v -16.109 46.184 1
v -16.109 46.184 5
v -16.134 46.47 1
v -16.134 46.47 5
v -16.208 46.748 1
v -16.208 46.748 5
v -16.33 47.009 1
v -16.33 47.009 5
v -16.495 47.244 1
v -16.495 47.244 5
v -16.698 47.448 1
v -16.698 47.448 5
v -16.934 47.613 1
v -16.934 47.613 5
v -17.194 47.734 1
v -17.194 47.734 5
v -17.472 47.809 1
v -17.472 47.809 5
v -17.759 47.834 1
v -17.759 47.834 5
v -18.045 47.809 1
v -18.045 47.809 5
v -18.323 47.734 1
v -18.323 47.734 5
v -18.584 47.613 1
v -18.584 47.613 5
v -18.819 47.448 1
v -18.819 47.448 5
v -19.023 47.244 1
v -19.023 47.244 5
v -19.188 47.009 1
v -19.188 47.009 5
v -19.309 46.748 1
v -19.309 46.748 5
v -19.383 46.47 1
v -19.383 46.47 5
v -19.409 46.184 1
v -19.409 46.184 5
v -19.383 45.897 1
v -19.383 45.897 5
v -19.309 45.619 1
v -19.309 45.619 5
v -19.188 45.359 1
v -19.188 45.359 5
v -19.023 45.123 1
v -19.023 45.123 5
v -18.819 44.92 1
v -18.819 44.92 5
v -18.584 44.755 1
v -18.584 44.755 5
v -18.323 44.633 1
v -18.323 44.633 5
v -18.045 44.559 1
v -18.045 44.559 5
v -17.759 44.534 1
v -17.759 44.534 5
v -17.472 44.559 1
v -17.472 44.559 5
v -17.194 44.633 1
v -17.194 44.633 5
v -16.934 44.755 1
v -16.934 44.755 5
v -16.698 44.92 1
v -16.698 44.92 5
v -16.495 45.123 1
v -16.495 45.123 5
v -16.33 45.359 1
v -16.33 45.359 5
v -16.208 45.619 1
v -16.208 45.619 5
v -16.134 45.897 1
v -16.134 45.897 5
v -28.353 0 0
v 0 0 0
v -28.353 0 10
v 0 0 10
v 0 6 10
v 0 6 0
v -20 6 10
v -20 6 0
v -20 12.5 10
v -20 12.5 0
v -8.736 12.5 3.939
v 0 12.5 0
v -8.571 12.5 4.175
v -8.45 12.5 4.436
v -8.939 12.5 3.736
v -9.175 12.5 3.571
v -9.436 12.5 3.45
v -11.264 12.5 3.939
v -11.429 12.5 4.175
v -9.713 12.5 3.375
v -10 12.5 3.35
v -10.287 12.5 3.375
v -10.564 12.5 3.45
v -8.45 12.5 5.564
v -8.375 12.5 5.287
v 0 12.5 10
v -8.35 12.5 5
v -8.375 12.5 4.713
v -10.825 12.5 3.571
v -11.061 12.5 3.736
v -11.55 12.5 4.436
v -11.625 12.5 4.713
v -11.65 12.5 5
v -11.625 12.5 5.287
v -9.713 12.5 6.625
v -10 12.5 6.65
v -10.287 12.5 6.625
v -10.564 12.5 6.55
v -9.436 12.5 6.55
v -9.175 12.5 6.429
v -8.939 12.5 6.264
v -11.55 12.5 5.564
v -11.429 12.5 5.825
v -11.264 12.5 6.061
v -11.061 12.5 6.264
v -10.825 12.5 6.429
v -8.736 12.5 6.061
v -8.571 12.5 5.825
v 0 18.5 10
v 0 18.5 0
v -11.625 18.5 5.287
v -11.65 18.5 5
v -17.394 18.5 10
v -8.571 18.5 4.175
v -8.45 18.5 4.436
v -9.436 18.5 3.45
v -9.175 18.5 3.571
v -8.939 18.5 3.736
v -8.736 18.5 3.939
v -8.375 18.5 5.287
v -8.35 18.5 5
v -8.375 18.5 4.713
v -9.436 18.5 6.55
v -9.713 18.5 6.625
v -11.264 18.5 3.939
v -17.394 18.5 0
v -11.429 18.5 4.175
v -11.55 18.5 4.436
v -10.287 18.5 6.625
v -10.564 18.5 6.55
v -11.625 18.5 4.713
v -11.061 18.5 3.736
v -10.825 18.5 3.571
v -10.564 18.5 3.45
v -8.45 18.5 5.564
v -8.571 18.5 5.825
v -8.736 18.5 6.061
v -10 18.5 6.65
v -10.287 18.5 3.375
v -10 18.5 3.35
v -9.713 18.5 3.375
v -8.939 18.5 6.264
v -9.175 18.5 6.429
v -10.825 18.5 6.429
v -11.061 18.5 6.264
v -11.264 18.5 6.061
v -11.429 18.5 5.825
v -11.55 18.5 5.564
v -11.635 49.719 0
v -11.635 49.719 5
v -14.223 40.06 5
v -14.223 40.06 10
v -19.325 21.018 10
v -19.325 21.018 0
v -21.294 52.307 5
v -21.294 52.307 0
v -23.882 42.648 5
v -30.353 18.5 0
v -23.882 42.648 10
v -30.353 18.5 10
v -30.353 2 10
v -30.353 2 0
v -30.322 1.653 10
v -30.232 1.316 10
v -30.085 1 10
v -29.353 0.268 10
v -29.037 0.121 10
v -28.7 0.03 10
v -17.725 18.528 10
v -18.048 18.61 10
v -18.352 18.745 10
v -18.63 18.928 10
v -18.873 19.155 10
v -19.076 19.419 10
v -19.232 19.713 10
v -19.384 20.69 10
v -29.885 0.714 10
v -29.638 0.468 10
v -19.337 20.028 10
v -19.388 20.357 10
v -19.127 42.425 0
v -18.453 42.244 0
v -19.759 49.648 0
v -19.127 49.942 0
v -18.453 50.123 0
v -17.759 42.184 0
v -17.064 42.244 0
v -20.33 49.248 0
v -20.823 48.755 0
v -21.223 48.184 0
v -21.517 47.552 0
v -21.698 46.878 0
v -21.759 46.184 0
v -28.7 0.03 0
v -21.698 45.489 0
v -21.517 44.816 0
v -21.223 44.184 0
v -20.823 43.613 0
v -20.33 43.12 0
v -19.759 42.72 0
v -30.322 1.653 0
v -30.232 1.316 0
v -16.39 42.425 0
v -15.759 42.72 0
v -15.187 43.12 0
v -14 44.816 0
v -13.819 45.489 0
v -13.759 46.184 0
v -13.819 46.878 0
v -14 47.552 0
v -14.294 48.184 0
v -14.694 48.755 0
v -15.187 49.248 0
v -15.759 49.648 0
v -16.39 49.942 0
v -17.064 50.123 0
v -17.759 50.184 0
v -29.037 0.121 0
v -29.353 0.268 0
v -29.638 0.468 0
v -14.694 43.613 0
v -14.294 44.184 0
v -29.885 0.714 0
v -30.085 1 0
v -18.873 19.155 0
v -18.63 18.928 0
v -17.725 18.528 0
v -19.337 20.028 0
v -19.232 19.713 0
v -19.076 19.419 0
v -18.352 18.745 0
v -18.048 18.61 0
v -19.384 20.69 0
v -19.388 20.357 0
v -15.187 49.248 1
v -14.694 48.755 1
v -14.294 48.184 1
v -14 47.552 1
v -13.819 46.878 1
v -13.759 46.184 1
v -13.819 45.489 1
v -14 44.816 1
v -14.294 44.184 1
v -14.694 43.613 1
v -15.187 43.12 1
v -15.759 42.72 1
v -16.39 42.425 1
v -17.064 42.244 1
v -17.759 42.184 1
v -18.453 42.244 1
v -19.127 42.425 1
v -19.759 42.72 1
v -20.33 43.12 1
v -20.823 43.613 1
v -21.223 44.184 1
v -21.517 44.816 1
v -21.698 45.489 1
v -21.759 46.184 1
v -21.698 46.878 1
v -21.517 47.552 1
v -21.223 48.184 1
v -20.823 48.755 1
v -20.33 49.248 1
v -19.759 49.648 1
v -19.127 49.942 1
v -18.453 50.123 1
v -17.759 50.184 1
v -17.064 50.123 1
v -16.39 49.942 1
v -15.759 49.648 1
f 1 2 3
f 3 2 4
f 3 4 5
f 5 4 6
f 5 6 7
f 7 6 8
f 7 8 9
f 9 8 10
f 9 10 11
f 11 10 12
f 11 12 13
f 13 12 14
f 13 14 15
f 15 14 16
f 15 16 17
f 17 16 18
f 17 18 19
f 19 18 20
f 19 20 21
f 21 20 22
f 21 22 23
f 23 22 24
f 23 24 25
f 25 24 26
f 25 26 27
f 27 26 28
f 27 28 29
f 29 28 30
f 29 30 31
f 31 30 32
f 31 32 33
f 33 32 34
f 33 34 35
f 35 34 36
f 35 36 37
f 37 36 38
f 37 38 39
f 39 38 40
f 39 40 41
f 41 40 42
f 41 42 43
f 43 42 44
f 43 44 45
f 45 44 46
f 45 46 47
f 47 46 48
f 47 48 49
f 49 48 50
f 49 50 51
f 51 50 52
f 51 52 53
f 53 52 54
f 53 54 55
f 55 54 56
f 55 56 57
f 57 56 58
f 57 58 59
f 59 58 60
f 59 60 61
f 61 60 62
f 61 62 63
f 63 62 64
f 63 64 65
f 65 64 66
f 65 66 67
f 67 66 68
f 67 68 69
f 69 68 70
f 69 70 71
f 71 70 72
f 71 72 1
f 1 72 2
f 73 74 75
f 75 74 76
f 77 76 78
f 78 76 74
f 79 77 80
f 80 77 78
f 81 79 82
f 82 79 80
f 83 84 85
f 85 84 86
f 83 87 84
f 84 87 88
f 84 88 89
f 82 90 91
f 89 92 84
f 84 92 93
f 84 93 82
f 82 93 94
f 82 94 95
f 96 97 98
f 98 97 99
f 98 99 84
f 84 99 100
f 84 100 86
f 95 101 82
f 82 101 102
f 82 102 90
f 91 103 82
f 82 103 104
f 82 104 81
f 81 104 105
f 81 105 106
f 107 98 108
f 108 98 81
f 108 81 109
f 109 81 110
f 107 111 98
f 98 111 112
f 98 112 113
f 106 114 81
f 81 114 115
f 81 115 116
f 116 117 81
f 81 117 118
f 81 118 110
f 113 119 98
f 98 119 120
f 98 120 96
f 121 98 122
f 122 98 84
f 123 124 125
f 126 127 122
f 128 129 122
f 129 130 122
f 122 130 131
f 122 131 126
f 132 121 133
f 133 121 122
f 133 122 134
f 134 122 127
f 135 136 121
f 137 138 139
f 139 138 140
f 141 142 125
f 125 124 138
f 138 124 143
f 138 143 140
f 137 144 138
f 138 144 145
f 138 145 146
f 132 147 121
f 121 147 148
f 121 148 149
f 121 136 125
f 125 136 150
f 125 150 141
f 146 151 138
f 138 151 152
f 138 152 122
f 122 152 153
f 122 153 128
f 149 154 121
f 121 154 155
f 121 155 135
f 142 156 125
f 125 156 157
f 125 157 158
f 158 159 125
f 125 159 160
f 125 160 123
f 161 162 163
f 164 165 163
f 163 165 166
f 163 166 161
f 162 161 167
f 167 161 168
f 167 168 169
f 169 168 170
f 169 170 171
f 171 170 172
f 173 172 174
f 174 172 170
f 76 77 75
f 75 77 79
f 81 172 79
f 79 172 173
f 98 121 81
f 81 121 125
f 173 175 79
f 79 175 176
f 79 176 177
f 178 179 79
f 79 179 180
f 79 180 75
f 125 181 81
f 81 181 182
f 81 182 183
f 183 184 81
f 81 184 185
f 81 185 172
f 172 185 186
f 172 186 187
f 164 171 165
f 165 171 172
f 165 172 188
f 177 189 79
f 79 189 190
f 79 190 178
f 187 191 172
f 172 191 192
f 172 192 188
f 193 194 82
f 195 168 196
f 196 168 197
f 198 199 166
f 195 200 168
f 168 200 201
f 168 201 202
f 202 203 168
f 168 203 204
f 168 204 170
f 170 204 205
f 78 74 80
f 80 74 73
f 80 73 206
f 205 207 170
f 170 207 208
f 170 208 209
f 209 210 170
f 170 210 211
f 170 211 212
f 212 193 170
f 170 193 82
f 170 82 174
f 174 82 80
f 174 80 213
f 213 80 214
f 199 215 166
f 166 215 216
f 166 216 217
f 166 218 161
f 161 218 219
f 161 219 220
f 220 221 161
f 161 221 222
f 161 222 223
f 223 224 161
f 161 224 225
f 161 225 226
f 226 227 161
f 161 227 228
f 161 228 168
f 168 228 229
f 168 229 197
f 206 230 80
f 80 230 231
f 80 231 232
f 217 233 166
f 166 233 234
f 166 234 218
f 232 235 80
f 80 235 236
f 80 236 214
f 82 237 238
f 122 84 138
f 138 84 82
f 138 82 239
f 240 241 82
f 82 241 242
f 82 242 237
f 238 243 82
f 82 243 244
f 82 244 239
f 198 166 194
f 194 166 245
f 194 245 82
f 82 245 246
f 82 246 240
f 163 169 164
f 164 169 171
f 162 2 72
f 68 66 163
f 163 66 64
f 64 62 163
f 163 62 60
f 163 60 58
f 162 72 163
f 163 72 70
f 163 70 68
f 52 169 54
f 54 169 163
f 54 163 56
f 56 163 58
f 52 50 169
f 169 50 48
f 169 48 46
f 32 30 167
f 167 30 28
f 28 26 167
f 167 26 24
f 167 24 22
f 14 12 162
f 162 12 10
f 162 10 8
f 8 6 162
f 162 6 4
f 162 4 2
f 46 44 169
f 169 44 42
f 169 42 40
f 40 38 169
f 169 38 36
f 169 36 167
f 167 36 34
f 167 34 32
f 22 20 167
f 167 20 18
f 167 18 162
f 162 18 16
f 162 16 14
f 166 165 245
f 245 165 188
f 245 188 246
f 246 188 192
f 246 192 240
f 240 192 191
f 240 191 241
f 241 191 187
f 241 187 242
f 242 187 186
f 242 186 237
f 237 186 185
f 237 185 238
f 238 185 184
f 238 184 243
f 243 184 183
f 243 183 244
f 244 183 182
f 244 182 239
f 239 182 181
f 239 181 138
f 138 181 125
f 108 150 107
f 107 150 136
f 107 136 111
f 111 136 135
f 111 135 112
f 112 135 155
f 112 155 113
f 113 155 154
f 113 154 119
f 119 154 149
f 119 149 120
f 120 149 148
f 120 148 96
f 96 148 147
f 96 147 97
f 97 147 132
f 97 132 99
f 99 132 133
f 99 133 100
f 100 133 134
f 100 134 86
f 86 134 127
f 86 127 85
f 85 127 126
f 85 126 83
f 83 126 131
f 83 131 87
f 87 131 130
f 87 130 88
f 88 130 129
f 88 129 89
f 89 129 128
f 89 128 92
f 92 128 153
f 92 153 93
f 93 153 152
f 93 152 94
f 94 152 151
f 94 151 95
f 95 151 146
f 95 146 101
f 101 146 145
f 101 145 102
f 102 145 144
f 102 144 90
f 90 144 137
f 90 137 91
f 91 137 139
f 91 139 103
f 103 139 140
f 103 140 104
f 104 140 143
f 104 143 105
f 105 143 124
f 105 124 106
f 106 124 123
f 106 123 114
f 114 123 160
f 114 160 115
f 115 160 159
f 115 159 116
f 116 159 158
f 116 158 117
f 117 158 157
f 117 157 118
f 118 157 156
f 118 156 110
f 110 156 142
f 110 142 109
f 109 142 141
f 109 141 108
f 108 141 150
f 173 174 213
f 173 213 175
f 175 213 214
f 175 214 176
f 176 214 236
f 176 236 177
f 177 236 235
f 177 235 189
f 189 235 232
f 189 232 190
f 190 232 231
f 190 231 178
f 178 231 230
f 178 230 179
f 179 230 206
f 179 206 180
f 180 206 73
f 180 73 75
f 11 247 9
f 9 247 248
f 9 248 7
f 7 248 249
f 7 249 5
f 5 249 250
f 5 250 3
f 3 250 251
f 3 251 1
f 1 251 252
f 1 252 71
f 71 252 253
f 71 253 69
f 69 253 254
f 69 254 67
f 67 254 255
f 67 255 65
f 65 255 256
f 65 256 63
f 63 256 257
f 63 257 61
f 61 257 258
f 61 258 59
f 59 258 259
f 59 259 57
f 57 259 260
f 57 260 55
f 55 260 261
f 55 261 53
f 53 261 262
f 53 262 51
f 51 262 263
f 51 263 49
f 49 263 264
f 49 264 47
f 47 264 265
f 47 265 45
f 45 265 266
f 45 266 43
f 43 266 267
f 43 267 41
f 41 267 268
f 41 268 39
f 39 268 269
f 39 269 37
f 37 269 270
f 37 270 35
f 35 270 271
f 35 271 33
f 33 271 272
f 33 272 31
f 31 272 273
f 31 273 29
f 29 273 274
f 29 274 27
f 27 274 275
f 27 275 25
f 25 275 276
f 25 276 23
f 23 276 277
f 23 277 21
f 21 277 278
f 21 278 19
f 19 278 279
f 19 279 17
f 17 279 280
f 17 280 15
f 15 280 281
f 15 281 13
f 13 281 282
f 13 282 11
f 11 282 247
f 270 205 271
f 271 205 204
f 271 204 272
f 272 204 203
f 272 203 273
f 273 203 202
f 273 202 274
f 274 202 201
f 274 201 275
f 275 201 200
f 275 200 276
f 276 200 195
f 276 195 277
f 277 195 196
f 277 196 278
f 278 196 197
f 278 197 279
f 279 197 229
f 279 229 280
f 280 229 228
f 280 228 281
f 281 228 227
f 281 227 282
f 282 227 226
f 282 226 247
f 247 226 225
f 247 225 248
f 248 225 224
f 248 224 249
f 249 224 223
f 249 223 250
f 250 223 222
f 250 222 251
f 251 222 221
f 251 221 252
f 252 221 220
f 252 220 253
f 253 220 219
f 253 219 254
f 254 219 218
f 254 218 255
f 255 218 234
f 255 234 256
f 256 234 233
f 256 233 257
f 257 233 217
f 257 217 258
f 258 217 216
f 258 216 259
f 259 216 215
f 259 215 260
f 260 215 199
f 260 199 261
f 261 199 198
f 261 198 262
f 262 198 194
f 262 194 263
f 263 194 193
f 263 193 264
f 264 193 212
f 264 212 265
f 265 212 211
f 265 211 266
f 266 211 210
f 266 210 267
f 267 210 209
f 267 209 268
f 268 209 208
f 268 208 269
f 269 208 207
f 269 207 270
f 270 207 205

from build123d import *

# Parameters (mm, degrees)
EXTRUDE_1_DEPTH        = 10
CUT_EXTRUDE_1_DEPTH    = 5
FILLET_1_R             = 2
HOLE_WIZARD_M4_1_D     = 3.3
HOLE_WIZARD_M4_1_DEPTH = 6
HOLE_WIZARD_M4_2_D     = 3.3
FILLET_2_R             = 2
SKETCH_23_R            = 4
CUT_EXTRUDE_3_DEPTH    = 1


with BuildPart() as part:
    # 草图1 → 凸台-拉伸1 (new body)
    with BuildSketch(Plane.XY):
        Polygon((0, 0), (0, 6), (-20, 6), (-20, 12.5), (0, 12.5), (0, 18.5), (-20, 18.5), (-11.634836963, 49.719213469), (-21.294095226, 52.30740392), (-30.352761804, 18.5), (-30.352761804, 0), align=None)
    extrude(amount=EXTRUDE_1_DEPTH)

    # 草图2 → 切除-拉伸1 (cut)
    with BuildSketch(Plane.XY.offset(10)):
        Polygon((-21.294095226, 52.30740392), (-11.634836963, 49.719213469), (-14.223027414, 40.059955206), (-23.882285677, 42.648145657), align=None)
    extrude(amount=-CUT_EXTRUDE_1_DEPTH, mode=Mode.SUBTRACT)

    # 圆角1
    fillet_1_edges = [part.edges().sort_by_distance(p)[0] for p in [
        (-20, 18.5, 5),
    ]]
    fillet(fillet_1_edges, radius=FILLET_1_R)

    # M4 螺纹孔1
    with Locations(Plane(origin=(0, 18.5, 0), x_dir=(1, 0, 0), z_dir=(0, 1, 0))):
        with Locations((-10, -5)):
            Hole(HOLE_WIZARD_M4_1_D / 2, depth=HOLE_WIZARD_M4_1_DEPTH)

    # M4 螺纹孔2 (through all)
    with Locations(Plane.XY.offset(5)):
        with Locations((-17.75856132, 46.183679563)):
            Hole(HOLE_WIZARD_M4_2_D / 2)

    # 圆角2
    fillet_2_edges = [part.edges().sort_by_distance(p)[0] for p in [
        (-30.352761804, 0, 5),
    ]]
    fillet(fillet_2_edges, radius=FILLET_2_R)

    # 草图23 → 切除-拉伸3 (cut)
    with BuildSketch(Plane(origin=(0, 0, 0), x_dir=(-1, 0, 0), z_dir=(0, 0, -1))):
        with Locations((17.75856132, 46.183679563)):
            Circle(SKETCH_23_R)
    extrude(amount=-CUT_EXTRUDE_3_DEPTH, mode=Mode.SUBTRACT)


solid = part.part
